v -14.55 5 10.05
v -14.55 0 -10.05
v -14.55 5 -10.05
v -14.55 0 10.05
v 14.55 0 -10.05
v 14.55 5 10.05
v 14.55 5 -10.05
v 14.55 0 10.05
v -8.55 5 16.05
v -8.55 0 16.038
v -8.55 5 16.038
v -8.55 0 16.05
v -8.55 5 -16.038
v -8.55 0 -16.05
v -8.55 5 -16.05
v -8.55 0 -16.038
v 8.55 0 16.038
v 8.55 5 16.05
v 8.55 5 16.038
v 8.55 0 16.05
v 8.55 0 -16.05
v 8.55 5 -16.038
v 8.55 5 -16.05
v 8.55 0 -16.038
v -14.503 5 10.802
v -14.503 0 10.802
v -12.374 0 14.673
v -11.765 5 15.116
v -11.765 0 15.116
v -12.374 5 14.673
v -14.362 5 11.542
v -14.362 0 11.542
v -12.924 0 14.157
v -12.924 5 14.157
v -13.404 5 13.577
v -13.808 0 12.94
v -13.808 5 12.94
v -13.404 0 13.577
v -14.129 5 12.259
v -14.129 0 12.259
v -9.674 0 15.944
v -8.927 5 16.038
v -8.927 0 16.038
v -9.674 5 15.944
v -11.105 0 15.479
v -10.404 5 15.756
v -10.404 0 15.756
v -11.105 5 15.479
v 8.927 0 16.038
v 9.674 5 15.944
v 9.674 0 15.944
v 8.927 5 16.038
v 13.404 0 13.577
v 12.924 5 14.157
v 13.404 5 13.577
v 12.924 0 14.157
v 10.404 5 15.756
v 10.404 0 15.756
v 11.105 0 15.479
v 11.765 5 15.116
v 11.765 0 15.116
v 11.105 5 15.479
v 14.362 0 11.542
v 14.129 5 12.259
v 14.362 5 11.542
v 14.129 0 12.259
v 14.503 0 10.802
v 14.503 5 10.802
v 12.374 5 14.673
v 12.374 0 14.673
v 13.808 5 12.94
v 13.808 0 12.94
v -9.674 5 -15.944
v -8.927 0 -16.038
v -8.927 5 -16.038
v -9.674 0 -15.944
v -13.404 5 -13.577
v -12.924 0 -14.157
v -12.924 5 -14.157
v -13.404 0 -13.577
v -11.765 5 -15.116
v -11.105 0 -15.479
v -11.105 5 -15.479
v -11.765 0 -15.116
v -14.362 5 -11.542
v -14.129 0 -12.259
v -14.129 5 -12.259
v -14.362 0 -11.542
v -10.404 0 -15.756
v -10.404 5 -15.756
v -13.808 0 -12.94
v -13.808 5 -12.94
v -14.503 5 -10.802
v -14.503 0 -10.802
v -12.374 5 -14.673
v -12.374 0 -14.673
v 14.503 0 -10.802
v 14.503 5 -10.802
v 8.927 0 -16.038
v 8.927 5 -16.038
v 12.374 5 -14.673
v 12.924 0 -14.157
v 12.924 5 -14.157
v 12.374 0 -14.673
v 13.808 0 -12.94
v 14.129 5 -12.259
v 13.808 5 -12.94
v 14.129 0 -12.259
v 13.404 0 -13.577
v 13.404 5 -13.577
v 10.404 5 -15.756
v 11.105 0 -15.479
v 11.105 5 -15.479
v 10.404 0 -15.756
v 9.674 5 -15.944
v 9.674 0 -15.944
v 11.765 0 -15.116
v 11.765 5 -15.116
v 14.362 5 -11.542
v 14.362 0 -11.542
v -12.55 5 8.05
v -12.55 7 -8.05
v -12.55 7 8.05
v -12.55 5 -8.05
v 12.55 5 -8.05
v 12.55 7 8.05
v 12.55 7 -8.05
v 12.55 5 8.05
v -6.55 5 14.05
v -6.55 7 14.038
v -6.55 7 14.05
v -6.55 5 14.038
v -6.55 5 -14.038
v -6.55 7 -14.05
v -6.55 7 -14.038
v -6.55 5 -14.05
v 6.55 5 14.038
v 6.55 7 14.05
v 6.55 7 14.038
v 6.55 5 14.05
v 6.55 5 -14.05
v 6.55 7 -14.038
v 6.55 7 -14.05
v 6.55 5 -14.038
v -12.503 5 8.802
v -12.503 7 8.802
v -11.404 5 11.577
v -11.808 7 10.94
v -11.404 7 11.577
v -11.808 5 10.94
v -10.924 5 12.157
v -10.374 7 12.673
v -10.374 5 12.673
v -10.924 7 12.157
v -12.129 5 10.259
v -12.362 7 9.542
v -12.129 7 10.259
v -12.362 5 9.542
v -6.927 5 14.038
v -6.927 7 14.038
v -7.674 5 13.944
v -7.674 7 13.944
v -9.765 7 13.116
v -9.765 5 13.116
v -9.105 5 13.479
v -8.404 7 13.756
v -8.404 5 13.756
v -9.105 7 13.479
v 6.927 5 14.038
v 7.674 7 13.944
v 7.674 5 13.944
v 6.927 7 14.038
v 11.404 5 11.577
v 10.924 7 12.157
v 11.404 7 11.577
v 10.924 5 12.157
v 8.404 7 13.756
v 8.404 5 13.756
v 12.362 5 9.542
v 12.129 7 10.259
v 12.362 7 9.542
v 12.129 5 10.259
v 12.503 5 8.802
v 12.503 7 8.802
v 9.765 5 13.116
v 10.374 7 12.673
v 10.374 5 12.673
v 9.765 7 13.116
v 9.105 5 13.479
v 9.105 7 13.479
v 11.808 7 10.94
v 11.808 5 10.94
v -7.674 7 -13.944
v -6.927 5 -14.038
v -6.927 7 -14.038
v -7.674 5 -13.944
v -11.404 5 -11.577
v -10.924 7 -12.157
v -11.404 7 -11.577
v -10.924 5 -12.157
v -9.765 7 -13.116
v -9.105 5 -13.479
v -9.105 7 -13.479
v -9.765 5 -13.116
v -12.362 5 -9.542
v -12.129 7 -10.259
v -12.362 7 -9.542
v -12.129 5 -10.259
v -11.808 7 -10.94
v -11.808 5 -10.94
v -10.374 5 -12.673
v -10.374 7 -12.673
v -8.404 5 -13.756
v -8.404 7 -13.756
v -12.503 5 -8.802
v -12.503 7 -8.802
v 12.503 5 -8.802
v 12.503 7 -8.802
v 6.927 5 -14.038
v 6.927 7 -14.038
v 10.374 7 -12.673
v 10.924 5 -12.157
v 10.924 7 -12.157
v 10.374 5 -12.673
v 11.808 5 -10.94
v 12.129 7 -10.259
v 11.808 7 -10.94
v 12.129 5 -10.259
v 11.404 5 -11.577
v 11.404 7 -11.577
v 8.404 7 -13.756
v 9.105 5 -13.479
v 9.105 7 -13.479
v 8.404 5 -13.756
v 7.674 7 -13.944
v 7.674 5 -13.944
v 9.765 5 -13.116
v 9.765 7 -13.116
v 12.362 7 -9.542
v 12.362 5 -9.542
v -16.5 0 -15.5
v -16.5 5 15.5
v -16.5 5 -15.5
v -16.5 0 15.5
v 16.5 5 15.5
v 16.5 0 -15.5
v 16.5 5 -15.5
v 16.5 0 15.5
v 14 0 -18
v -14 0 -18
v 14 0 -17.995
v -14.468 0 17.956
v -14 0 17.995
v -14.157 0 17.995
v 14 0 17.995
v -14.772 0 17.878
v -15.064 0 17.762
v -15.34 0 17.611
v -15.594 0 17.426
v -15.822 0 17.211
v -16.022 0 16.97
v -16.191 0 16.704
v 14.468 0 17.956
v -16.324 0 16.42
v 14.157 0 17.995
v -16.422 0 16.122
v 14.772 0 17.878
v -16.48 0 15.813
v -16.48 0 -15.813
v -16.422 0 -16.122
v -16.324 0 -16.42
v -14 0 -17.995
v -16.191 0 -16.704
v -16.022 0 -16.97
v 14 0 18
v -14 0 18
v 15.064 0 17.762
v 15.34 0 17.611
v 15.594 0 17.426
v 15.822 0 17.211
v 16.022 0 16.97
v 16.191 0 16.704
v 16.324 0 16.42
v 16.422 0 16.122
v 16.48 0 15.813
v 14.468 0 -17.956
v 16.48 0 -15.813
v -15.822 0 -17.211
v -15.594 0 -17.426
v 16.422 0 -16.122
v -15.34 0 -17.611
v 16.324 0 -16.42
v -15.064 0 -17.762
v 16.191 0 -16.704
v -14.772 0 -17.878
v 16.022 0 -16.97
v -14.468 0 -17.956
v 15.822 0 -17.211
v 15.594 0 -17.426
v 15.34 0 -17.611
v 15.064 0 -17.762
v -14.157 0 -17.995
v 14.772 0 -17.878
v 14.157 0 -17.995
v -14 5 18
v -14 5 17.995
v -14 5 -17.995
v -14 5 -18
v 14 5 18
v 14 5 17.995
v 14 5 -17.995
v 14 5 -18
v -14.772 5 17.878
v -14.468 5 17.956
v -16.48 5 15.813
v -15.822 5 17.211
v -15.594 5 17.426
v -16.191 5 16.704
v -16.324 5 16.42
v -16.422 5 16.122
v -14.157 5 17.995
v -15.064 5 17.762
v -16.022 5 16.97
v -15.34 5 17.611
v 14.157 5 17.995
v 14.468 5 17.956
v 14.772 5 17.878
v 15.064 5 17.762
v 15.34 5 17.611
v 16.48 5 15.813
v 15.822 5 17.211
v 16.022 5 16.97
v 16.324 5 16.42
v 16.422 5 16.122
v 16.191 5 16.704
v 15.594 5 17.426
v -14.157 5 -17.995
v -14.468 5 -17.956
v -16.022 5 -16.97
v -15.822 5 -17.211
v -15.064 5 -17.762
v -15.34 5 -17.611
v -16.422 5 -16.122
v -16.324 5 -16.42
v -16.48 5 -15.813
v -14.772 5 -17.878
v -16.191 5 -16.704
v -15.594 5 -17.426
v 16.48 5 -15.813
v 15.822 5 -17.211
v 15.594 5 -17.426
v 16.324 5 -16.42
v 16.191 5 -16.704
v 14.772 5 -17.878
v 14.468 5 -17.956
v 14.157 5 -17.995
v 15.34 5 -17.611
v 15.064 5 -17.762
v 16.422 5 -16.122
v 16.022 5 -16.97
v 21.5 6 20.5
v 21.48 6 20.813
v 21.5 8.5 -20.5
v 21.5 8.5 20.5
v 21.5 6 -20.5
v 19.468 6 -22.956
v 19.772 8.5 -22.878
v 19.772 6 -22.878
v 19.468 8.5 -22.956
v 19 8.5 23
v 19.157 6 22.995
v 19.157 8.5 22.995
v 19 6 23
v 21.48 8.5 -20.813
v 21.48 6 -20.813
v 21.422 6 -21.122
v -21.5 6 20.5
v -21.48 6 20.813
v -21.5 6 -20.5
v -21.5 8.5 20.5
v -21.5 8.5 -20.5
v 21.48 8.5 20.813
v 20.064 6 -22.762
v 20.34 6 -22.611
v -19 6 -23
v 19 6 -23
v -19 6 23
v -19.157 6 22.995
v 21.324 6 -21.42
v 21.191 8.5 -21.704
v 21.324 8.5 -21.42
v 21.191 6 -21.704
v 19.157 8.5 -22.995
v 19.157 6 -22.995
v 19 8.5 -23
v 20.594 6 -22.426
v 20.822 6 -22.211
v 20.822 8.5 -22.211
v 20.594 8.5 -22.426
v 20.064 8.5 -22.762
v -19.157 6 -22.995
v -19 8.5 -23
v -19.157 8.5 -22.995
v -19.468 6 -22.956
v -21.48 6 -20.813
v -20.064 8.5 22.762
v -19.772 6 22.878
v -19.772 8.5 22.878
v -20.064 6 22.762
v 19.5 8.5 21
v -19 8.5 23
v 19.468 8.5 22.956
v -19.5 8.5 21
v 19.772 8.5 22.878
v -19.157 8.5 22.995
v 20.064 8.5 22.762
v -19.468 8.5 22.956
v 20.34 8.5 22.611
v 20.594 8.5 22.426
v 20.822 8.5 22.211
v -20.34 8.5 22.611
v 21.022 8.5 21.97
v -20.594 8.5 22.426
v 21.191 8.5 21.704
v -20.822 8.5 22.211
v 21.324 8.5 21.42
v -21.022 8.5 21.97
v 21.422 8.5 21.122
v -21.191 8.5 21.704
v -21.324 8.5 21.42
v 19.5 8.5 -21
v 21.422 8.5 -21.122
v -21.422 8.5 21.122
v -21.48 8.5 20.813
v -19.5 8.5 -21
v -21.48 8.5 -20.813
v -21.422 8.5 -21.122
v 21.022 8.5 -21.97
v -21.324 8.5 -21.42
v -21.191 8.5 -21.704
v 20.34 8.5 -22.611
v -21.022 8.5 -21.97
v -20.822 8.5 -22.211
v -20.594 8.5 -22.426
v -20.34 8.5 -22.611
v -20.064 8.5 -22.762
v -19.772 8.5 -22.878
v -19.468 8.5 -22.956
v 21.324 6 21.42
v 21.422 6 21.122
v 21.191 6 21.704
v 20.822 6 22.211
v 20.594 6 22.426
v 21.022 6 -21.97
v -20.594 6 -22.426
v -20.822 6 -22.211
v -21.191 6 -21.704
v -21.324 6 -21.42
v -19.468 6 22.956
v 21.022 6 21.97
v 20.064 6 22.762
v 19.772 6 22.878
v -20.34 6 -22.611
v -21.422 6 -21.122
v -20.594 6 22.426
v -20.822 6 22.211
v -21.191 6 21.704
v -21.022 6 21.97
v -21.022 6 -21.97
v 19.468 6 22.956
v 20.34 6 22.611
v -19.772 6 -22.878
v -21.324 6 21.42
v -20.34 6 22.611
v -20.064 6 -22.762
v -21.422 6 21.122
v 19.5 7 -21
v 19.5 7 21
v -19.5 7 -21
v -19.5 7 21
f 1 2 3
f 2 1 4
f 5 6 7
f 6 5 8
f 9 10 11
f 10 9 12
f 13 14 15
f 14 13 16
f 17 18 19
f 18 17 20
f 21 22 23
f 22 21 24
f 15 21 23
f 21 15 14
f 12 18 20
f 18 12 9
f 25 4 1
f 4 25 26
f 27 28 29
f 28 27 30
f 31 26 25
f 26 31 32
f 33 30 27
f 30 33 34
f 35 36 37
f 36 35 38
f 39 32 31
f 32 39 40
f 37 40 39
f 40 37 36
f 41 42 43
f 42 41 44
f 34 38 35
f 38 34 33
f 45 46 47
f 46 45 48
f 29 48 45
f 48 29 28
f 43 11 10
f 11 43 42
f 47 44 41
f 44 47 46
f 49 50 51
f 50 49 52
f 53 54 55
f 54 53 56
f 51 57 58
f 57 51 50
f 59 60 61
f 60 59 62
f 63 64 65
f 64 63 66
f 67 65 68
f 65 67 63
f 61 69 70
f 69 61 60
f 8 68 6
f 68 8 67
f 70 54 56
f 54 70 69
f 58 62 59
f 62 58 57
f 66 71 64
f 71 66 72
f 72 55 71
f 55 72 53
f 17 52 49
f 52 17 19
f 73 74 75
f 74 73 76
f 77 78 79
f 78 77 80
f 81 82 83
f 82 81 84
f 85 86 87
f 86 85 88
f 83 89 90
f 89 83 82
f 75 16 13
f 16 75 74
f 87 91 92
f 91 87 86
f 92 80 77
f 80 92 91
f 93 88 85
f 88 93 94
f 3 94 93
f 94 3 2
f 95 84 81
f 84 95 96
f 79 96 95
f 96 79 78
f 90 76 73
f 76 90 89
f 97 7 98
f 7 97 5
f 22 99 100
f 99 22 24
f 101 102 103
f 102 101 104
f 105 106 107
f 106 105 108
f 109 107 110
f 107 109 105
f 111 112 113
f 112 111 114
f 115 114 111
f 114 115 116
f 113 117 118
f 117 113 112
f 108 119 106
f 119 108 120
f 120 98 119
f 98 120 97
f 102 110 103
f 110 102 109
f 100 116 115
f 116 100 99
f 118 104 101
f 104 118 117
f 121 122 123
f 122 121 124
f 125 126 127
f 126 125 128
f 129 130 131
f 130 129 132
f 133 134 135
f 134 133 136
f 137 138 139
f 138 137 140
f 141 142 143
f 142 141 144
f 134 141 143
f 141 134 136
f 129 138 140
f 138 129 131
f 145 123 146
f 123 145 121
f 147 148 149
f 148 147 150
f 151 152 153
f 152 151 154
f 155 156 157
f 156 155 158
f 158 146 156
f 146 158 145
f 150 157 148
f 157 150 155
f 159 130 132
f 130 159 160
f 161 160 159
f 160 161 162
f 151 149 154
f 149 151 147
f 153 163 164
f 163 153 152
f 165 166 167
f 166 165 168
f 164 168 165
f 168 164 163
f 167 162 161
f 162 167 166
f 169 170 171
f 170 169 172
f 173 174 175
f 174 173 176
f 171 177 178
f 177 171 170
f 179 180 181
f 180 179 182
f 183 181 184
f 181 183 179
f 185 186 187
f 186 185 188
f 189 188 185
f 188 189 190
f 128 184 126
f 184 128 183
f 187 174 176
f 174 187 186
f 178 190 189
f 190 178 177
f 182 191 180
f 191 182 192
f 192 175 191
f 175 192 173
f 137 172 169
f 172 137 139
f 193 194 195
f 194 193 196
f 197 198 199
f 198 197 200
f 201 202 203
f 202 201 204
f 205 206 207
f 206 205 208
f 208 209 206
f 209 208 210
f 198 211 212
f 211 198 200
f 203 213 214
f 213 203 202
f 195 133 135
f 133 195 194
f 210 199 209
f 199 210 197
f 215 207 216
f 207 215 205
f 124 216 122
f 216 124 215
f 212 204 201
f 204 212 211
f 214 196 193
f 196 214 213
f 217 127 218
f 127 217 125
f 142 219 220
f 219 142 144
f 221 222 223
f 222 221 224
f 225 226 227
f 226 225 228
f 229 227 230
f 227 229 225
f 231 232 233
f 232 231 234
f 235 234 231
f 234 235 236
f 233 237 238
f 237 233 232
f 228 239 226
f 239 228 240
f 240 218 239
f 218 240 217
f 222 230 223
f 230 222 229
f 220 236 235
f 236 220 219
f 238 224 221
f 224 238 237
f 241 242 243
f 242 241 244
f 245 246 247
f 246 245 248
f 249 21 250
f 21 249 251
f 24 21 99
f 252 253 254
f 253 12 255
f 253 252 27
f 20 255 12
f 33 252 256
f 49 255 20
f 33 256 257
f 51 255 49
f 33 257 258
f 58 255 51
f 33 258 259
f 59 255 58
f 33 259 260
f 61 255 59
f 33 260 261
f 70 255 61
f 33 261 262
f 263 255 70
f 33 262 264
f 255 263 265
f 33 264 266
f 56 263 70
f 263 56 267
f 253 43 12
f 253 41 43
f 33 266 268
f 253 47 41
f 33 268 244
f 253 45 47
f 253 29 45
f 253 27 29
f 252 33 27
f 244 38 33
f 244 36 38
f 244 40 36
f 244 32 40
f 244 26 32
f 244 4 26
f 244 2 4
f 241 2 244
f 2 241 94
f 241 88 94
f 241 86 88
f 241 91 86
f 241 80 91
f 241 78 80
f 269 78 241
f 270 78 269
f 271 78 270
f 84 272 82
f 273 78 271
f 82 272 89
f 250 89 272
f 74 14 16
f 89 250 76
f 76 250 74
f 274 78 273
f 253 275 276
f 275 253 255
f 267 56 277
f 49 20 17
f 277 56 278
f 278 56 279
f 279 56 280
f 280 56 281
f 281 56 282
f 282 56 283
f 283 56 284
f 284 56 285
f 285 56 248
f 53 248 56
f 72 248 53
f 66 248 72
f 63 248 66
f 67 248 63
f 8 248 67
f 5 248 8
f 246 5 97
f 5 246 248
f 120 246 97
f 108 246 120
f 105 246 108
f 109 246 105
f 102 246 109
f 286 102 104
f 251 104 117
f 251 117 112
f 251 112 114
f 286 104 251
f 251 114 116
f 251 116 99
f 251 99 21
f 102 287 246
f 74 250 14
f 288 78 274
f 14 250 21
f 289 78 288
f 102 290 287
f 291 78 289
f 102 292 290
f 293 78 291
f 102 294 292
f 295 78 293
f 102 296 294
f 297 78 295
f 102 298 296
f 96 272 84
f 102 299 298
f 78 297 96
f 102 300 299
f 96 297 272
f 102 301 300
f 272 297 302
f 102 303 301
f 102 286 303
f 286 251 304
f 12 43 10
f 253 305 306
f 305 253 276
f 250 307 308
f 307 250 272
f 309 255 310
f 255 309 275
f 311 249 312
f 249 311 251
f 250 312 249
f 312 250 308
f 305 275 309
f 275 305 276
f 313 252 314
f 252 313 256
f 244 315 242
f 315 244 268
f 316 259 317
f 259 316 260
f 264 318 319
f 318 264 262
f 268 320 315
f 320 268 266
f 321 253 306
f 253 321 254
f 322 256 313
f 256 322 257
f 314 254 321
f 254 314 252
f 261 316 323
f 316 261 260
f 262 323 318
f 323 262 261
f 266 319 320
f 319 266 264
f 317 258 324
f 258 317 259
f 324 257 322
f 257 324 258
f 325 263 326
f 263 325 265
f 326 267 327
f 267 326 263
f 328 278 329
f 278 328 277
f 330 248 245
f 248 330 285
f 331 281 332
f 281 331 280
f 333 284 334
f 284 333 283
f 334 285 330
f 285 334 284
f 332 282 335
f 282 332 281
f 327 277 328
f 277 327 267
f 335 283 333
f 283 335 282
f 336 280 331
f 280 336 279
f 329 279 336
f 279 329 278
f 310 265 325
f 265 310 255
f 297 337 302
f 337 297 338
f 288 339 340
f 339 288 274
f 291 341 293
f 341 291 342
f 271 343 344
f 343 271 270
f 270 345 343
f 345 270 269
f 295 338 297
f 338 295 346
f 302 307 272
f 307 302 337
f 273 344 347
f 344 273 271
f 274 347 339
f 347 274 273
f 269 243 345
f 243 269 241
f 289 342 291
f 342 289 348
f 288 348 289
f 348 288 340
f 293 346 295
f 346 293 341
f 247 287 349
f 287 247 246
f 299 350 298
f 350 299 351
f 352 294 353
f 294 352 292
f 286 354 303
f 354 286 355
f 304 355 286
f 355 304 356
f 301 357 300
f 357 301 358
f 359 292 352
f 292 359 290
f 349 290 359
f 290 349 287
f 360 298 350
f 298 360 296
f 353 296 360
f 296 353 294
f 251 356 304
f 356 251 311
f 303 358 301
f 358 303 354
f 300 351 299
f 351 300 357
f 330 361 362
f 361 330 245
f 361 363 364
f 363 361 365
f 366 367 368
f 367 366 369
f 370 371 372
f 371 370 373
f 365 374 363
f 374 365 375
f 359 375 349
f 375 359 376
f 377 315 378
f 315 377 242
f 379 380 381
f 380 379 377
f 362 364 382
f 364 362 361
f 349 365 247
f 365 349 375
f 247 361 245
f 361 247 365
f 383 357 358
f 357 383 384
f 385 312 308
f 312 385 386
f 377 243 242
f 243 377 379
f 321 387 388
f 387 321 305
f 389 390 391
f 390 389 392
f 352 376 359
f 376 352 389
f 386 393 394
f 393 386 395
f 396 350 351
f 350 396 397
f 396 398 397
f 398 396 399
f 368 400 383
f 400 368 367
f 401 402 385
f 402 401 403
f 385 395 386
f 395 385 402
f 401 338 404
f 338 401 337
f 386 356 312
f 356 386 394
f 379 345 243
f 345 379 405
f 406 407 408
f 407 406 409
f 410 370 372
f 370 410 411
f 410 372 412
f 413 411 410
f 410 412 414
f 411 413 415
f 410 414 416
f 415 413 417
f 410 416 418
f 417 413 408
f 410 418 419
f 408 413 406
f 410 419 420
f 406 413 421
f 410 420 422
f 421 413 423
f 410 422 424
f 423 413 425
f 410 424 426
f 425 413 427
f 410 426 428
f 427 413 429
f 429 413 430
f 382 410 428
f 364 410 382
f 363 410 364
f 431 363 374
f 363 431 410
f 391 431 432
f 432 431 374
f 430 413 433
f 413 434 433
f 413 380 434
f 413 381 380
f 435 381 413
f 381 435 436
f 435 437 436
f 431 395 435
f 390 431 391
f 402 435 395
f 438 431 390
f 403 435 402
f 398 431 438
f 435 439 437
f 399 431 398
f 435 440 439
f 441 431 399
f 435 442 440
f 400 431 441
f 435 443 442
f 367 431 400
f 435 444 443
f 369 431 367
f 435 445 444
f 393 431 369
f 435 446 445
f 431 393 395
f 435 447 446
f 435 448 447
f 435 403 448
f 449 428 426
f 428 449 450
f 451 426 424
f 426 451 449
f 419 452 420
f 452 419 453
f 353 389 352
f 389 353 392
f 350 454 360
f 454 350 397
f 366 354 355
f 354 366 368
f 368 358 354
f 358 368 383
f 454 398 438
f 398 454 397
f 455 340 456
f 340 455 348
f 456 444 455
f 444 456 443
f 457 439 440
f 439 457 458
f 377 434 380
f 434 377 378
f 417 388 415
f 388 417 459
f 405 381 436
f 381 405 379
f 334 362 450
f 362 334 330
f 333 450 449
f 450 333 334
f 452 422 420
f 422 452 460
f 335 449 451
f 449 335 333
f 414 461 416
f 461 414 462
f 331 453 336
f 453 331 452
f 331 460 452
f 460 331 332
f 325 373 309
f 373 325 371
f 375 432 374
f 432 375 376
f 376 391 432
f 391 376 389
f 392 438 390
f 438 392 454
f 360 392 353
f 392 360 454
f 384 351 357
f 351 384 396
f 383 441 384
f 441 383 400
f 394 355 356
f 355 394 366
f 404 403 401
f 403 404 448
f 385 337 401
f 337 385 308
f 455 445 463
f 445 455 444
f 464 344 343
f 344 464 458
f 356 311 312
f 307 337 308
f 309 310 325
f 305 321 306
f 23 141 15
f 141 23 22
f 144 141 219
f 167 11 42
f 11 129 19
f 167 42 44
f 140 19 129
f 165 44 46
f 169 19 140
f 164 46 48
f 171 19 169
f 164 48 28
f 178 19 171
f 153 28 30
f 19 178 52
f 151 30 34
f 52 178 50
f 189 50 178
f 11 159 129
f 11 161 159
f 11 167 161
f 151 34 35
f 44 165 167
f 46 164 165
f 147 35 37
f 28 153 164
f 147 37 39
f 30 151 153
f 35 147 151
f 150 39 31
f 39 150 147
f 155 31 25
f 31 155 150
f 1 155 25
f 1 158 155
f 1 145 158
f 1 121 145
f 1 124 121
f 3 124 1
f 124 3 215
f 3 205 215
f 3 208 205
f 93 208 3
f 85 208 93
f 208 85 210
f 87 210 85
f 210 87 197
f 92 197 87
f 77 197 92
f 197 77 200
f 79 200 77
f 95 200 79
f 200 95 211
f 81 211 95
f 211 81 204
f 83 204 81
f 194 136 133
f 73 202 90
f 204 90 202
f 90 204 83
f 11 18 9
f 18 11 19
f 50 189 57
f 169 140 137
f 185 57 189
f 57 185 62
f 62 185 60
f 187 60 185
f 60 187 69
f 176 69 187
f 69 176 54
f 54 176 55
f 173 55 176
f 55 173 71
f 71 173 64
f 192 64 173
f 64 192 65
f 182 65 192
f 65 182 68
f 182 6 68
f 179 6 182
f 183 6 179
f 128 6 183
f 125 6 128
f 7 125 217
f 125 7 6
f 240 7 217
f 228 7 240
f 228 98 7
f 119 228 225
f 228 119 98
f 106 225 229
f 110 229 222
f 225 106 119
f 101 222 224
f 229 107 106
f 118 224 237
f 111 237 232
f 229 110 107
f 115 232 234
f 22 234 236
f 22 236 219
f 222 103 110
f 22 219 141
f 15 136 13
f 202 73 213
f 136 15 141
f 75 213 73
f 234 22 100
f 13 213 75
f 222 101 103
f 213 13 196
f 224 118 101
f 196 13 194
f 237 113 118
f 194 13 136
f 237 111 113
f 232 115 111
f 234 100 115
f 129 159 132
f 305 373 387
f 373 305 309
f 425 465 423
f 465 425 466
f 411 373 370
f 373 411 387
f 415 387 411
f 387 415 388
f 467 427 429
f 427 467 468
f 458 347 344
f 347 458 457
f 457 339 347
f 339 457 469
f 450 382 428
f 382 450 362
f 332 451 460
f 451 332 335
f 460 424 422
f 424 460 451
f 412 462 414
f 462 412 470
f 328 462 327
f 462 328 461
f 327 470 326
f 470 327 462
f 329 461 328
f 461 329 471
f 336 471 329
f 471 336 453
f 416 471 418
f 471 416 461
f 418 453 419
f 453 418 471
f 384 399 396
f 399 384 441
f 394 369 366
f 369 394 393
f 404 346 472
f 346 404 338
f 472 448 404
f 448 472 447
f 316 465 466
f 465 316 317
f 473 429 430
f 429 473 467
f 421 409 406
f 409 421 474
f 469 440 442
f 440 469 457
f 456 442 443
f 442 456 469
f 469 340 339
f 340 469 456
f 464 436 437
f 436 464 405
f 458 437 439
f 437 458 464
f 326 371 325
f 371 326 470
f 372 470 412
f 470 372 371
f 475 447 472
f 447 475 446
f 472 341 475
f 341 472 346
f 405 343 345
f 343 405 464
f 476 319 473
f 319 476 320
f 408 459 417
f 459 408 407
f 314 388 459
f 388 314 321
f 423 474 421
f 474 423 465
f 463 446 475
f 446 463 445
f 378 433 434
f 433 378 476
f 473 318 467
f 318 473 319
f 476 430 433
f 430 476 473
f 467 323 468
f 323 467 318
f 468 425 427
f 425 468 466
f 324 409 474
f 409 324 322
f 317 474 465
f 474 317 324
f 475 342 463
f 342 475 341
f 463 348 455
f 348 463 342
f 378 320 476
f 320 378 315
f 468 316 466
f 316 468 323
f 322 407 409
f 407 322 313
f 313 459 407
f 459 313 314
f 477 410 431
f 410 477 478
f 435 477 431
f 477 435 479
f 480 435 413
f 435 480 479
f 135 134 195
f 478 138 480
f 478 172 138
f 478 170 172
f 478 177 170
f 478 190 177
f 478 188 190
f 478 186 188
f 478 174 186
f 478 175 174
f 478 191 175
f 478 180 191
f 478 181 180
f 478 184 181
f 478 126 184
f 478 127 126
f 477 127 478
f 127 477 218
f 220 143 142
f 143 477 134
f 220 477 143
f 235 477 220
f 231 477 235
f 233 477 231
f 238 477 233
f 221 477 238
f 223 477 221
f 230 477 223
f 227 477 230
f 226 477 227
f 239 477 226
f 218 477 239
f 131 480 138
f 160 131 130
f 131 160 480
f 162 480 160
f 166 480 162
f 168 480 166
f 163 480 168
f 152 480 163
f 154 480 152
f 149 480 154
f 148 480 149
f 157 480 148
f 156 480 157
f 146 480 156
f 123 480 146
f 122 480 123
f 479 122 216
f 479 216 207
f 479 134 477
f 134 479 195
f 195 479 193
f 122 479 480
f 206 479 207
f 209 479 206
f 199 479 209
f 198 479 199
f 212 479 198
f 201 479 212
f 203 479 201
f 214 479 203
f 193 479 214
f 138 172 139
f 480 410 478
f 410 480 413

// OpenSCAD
// file: RoundedRectangle.scad
// parameters
X = 50;
Y = 30;
THICKNESS = 2;
R = 2;
RESOLUTION = 50;

module RoundedRectangle(x, y, thickness, r, $fn=0) {

    translate([0, r, 0])
        cube([x, y-2*r, thickness]);
    translate([r, 0, 0])
        cube([x-2*r, y, thickness]);

    translate([r, r, 0])
        cylinder(r=r, h=thickness, $fn=$fn);
    translate([x-r, r, 0])
        cylinder(r=r, h=thickness, $fn=$fn);
    translate([r, y-r, 0])
        cylinder(r=r, h=thickness, $fn=$fn);
    translate([x-r, y-r, 0])
        cylinder(r=r, h=thickness, $fn=$fn);

}

// main
RoundedRectangle(x=X, y=Y, thickness=THICKNESS, r=R, $fn=RESOLUTION);
// main file
use <RoundedRectangle.scad>;

RESOLUTION = 50;
x_inner = 29.1;
y_inner = 32.1;
r_inner = 6;
x_base = 33;
y_base = 36;
margin = 3;
r = 2.5;
x = x_base + margin*2 + 2*2;
y = y_base + margin*2 + 2*2;
x_subtract = x_base + margin*2;
y_subtract = y_base + margin*2;


difference() {
    translate([-x_base/2.0, 0, y_base/2.0])
            rotate([-90, 0, 0])
                RoundedRectangle(x=x_base, y=y_base, r=r, thickness=5, $fn=RESOLUTION);
    
    translate([-x_inner/2.0, 0, y_inner/2.0])
            rotate([-90, 0, 0])
                RoundedRectangle(x=x_inner, y=y_inner, r=r_inner, thickness=6, $fn=RESOLUTION);
}

difference() {
    hull() {
        translate([-x_base/2.0, 5, y_base/2.0])
            rotate([-90, 0, 0])
                RoundedRectangle(x=x_base, y=y_base, r=r, thickness=2, $fn=RESOLUTION);
        
        translate([-x/2.0, 6, y/2.0])
            rotate([-90, 0, 0])
                RoundedRectangle(x=x, y=y, r=r, thickness=2.5, $fn=RESOLUTION);
    }
    
    // subtract
    translate([-x_subtract/2.0, 6+1, y_subtract/2.0])
        rotate([-90, 0, 0])
            cube([x_subtract, y_subtract, 3]);
    
    // inner
    translate([-(x_inner-4)/2.0, 0, (y_inner-4)/2.0])
        rotate([-90, 0, 0])
            RoundedRectangle(x=x_inner-4, y=y_inner-4, r=r_inner, thickness=10, $fn=RESOLUTION);
}
